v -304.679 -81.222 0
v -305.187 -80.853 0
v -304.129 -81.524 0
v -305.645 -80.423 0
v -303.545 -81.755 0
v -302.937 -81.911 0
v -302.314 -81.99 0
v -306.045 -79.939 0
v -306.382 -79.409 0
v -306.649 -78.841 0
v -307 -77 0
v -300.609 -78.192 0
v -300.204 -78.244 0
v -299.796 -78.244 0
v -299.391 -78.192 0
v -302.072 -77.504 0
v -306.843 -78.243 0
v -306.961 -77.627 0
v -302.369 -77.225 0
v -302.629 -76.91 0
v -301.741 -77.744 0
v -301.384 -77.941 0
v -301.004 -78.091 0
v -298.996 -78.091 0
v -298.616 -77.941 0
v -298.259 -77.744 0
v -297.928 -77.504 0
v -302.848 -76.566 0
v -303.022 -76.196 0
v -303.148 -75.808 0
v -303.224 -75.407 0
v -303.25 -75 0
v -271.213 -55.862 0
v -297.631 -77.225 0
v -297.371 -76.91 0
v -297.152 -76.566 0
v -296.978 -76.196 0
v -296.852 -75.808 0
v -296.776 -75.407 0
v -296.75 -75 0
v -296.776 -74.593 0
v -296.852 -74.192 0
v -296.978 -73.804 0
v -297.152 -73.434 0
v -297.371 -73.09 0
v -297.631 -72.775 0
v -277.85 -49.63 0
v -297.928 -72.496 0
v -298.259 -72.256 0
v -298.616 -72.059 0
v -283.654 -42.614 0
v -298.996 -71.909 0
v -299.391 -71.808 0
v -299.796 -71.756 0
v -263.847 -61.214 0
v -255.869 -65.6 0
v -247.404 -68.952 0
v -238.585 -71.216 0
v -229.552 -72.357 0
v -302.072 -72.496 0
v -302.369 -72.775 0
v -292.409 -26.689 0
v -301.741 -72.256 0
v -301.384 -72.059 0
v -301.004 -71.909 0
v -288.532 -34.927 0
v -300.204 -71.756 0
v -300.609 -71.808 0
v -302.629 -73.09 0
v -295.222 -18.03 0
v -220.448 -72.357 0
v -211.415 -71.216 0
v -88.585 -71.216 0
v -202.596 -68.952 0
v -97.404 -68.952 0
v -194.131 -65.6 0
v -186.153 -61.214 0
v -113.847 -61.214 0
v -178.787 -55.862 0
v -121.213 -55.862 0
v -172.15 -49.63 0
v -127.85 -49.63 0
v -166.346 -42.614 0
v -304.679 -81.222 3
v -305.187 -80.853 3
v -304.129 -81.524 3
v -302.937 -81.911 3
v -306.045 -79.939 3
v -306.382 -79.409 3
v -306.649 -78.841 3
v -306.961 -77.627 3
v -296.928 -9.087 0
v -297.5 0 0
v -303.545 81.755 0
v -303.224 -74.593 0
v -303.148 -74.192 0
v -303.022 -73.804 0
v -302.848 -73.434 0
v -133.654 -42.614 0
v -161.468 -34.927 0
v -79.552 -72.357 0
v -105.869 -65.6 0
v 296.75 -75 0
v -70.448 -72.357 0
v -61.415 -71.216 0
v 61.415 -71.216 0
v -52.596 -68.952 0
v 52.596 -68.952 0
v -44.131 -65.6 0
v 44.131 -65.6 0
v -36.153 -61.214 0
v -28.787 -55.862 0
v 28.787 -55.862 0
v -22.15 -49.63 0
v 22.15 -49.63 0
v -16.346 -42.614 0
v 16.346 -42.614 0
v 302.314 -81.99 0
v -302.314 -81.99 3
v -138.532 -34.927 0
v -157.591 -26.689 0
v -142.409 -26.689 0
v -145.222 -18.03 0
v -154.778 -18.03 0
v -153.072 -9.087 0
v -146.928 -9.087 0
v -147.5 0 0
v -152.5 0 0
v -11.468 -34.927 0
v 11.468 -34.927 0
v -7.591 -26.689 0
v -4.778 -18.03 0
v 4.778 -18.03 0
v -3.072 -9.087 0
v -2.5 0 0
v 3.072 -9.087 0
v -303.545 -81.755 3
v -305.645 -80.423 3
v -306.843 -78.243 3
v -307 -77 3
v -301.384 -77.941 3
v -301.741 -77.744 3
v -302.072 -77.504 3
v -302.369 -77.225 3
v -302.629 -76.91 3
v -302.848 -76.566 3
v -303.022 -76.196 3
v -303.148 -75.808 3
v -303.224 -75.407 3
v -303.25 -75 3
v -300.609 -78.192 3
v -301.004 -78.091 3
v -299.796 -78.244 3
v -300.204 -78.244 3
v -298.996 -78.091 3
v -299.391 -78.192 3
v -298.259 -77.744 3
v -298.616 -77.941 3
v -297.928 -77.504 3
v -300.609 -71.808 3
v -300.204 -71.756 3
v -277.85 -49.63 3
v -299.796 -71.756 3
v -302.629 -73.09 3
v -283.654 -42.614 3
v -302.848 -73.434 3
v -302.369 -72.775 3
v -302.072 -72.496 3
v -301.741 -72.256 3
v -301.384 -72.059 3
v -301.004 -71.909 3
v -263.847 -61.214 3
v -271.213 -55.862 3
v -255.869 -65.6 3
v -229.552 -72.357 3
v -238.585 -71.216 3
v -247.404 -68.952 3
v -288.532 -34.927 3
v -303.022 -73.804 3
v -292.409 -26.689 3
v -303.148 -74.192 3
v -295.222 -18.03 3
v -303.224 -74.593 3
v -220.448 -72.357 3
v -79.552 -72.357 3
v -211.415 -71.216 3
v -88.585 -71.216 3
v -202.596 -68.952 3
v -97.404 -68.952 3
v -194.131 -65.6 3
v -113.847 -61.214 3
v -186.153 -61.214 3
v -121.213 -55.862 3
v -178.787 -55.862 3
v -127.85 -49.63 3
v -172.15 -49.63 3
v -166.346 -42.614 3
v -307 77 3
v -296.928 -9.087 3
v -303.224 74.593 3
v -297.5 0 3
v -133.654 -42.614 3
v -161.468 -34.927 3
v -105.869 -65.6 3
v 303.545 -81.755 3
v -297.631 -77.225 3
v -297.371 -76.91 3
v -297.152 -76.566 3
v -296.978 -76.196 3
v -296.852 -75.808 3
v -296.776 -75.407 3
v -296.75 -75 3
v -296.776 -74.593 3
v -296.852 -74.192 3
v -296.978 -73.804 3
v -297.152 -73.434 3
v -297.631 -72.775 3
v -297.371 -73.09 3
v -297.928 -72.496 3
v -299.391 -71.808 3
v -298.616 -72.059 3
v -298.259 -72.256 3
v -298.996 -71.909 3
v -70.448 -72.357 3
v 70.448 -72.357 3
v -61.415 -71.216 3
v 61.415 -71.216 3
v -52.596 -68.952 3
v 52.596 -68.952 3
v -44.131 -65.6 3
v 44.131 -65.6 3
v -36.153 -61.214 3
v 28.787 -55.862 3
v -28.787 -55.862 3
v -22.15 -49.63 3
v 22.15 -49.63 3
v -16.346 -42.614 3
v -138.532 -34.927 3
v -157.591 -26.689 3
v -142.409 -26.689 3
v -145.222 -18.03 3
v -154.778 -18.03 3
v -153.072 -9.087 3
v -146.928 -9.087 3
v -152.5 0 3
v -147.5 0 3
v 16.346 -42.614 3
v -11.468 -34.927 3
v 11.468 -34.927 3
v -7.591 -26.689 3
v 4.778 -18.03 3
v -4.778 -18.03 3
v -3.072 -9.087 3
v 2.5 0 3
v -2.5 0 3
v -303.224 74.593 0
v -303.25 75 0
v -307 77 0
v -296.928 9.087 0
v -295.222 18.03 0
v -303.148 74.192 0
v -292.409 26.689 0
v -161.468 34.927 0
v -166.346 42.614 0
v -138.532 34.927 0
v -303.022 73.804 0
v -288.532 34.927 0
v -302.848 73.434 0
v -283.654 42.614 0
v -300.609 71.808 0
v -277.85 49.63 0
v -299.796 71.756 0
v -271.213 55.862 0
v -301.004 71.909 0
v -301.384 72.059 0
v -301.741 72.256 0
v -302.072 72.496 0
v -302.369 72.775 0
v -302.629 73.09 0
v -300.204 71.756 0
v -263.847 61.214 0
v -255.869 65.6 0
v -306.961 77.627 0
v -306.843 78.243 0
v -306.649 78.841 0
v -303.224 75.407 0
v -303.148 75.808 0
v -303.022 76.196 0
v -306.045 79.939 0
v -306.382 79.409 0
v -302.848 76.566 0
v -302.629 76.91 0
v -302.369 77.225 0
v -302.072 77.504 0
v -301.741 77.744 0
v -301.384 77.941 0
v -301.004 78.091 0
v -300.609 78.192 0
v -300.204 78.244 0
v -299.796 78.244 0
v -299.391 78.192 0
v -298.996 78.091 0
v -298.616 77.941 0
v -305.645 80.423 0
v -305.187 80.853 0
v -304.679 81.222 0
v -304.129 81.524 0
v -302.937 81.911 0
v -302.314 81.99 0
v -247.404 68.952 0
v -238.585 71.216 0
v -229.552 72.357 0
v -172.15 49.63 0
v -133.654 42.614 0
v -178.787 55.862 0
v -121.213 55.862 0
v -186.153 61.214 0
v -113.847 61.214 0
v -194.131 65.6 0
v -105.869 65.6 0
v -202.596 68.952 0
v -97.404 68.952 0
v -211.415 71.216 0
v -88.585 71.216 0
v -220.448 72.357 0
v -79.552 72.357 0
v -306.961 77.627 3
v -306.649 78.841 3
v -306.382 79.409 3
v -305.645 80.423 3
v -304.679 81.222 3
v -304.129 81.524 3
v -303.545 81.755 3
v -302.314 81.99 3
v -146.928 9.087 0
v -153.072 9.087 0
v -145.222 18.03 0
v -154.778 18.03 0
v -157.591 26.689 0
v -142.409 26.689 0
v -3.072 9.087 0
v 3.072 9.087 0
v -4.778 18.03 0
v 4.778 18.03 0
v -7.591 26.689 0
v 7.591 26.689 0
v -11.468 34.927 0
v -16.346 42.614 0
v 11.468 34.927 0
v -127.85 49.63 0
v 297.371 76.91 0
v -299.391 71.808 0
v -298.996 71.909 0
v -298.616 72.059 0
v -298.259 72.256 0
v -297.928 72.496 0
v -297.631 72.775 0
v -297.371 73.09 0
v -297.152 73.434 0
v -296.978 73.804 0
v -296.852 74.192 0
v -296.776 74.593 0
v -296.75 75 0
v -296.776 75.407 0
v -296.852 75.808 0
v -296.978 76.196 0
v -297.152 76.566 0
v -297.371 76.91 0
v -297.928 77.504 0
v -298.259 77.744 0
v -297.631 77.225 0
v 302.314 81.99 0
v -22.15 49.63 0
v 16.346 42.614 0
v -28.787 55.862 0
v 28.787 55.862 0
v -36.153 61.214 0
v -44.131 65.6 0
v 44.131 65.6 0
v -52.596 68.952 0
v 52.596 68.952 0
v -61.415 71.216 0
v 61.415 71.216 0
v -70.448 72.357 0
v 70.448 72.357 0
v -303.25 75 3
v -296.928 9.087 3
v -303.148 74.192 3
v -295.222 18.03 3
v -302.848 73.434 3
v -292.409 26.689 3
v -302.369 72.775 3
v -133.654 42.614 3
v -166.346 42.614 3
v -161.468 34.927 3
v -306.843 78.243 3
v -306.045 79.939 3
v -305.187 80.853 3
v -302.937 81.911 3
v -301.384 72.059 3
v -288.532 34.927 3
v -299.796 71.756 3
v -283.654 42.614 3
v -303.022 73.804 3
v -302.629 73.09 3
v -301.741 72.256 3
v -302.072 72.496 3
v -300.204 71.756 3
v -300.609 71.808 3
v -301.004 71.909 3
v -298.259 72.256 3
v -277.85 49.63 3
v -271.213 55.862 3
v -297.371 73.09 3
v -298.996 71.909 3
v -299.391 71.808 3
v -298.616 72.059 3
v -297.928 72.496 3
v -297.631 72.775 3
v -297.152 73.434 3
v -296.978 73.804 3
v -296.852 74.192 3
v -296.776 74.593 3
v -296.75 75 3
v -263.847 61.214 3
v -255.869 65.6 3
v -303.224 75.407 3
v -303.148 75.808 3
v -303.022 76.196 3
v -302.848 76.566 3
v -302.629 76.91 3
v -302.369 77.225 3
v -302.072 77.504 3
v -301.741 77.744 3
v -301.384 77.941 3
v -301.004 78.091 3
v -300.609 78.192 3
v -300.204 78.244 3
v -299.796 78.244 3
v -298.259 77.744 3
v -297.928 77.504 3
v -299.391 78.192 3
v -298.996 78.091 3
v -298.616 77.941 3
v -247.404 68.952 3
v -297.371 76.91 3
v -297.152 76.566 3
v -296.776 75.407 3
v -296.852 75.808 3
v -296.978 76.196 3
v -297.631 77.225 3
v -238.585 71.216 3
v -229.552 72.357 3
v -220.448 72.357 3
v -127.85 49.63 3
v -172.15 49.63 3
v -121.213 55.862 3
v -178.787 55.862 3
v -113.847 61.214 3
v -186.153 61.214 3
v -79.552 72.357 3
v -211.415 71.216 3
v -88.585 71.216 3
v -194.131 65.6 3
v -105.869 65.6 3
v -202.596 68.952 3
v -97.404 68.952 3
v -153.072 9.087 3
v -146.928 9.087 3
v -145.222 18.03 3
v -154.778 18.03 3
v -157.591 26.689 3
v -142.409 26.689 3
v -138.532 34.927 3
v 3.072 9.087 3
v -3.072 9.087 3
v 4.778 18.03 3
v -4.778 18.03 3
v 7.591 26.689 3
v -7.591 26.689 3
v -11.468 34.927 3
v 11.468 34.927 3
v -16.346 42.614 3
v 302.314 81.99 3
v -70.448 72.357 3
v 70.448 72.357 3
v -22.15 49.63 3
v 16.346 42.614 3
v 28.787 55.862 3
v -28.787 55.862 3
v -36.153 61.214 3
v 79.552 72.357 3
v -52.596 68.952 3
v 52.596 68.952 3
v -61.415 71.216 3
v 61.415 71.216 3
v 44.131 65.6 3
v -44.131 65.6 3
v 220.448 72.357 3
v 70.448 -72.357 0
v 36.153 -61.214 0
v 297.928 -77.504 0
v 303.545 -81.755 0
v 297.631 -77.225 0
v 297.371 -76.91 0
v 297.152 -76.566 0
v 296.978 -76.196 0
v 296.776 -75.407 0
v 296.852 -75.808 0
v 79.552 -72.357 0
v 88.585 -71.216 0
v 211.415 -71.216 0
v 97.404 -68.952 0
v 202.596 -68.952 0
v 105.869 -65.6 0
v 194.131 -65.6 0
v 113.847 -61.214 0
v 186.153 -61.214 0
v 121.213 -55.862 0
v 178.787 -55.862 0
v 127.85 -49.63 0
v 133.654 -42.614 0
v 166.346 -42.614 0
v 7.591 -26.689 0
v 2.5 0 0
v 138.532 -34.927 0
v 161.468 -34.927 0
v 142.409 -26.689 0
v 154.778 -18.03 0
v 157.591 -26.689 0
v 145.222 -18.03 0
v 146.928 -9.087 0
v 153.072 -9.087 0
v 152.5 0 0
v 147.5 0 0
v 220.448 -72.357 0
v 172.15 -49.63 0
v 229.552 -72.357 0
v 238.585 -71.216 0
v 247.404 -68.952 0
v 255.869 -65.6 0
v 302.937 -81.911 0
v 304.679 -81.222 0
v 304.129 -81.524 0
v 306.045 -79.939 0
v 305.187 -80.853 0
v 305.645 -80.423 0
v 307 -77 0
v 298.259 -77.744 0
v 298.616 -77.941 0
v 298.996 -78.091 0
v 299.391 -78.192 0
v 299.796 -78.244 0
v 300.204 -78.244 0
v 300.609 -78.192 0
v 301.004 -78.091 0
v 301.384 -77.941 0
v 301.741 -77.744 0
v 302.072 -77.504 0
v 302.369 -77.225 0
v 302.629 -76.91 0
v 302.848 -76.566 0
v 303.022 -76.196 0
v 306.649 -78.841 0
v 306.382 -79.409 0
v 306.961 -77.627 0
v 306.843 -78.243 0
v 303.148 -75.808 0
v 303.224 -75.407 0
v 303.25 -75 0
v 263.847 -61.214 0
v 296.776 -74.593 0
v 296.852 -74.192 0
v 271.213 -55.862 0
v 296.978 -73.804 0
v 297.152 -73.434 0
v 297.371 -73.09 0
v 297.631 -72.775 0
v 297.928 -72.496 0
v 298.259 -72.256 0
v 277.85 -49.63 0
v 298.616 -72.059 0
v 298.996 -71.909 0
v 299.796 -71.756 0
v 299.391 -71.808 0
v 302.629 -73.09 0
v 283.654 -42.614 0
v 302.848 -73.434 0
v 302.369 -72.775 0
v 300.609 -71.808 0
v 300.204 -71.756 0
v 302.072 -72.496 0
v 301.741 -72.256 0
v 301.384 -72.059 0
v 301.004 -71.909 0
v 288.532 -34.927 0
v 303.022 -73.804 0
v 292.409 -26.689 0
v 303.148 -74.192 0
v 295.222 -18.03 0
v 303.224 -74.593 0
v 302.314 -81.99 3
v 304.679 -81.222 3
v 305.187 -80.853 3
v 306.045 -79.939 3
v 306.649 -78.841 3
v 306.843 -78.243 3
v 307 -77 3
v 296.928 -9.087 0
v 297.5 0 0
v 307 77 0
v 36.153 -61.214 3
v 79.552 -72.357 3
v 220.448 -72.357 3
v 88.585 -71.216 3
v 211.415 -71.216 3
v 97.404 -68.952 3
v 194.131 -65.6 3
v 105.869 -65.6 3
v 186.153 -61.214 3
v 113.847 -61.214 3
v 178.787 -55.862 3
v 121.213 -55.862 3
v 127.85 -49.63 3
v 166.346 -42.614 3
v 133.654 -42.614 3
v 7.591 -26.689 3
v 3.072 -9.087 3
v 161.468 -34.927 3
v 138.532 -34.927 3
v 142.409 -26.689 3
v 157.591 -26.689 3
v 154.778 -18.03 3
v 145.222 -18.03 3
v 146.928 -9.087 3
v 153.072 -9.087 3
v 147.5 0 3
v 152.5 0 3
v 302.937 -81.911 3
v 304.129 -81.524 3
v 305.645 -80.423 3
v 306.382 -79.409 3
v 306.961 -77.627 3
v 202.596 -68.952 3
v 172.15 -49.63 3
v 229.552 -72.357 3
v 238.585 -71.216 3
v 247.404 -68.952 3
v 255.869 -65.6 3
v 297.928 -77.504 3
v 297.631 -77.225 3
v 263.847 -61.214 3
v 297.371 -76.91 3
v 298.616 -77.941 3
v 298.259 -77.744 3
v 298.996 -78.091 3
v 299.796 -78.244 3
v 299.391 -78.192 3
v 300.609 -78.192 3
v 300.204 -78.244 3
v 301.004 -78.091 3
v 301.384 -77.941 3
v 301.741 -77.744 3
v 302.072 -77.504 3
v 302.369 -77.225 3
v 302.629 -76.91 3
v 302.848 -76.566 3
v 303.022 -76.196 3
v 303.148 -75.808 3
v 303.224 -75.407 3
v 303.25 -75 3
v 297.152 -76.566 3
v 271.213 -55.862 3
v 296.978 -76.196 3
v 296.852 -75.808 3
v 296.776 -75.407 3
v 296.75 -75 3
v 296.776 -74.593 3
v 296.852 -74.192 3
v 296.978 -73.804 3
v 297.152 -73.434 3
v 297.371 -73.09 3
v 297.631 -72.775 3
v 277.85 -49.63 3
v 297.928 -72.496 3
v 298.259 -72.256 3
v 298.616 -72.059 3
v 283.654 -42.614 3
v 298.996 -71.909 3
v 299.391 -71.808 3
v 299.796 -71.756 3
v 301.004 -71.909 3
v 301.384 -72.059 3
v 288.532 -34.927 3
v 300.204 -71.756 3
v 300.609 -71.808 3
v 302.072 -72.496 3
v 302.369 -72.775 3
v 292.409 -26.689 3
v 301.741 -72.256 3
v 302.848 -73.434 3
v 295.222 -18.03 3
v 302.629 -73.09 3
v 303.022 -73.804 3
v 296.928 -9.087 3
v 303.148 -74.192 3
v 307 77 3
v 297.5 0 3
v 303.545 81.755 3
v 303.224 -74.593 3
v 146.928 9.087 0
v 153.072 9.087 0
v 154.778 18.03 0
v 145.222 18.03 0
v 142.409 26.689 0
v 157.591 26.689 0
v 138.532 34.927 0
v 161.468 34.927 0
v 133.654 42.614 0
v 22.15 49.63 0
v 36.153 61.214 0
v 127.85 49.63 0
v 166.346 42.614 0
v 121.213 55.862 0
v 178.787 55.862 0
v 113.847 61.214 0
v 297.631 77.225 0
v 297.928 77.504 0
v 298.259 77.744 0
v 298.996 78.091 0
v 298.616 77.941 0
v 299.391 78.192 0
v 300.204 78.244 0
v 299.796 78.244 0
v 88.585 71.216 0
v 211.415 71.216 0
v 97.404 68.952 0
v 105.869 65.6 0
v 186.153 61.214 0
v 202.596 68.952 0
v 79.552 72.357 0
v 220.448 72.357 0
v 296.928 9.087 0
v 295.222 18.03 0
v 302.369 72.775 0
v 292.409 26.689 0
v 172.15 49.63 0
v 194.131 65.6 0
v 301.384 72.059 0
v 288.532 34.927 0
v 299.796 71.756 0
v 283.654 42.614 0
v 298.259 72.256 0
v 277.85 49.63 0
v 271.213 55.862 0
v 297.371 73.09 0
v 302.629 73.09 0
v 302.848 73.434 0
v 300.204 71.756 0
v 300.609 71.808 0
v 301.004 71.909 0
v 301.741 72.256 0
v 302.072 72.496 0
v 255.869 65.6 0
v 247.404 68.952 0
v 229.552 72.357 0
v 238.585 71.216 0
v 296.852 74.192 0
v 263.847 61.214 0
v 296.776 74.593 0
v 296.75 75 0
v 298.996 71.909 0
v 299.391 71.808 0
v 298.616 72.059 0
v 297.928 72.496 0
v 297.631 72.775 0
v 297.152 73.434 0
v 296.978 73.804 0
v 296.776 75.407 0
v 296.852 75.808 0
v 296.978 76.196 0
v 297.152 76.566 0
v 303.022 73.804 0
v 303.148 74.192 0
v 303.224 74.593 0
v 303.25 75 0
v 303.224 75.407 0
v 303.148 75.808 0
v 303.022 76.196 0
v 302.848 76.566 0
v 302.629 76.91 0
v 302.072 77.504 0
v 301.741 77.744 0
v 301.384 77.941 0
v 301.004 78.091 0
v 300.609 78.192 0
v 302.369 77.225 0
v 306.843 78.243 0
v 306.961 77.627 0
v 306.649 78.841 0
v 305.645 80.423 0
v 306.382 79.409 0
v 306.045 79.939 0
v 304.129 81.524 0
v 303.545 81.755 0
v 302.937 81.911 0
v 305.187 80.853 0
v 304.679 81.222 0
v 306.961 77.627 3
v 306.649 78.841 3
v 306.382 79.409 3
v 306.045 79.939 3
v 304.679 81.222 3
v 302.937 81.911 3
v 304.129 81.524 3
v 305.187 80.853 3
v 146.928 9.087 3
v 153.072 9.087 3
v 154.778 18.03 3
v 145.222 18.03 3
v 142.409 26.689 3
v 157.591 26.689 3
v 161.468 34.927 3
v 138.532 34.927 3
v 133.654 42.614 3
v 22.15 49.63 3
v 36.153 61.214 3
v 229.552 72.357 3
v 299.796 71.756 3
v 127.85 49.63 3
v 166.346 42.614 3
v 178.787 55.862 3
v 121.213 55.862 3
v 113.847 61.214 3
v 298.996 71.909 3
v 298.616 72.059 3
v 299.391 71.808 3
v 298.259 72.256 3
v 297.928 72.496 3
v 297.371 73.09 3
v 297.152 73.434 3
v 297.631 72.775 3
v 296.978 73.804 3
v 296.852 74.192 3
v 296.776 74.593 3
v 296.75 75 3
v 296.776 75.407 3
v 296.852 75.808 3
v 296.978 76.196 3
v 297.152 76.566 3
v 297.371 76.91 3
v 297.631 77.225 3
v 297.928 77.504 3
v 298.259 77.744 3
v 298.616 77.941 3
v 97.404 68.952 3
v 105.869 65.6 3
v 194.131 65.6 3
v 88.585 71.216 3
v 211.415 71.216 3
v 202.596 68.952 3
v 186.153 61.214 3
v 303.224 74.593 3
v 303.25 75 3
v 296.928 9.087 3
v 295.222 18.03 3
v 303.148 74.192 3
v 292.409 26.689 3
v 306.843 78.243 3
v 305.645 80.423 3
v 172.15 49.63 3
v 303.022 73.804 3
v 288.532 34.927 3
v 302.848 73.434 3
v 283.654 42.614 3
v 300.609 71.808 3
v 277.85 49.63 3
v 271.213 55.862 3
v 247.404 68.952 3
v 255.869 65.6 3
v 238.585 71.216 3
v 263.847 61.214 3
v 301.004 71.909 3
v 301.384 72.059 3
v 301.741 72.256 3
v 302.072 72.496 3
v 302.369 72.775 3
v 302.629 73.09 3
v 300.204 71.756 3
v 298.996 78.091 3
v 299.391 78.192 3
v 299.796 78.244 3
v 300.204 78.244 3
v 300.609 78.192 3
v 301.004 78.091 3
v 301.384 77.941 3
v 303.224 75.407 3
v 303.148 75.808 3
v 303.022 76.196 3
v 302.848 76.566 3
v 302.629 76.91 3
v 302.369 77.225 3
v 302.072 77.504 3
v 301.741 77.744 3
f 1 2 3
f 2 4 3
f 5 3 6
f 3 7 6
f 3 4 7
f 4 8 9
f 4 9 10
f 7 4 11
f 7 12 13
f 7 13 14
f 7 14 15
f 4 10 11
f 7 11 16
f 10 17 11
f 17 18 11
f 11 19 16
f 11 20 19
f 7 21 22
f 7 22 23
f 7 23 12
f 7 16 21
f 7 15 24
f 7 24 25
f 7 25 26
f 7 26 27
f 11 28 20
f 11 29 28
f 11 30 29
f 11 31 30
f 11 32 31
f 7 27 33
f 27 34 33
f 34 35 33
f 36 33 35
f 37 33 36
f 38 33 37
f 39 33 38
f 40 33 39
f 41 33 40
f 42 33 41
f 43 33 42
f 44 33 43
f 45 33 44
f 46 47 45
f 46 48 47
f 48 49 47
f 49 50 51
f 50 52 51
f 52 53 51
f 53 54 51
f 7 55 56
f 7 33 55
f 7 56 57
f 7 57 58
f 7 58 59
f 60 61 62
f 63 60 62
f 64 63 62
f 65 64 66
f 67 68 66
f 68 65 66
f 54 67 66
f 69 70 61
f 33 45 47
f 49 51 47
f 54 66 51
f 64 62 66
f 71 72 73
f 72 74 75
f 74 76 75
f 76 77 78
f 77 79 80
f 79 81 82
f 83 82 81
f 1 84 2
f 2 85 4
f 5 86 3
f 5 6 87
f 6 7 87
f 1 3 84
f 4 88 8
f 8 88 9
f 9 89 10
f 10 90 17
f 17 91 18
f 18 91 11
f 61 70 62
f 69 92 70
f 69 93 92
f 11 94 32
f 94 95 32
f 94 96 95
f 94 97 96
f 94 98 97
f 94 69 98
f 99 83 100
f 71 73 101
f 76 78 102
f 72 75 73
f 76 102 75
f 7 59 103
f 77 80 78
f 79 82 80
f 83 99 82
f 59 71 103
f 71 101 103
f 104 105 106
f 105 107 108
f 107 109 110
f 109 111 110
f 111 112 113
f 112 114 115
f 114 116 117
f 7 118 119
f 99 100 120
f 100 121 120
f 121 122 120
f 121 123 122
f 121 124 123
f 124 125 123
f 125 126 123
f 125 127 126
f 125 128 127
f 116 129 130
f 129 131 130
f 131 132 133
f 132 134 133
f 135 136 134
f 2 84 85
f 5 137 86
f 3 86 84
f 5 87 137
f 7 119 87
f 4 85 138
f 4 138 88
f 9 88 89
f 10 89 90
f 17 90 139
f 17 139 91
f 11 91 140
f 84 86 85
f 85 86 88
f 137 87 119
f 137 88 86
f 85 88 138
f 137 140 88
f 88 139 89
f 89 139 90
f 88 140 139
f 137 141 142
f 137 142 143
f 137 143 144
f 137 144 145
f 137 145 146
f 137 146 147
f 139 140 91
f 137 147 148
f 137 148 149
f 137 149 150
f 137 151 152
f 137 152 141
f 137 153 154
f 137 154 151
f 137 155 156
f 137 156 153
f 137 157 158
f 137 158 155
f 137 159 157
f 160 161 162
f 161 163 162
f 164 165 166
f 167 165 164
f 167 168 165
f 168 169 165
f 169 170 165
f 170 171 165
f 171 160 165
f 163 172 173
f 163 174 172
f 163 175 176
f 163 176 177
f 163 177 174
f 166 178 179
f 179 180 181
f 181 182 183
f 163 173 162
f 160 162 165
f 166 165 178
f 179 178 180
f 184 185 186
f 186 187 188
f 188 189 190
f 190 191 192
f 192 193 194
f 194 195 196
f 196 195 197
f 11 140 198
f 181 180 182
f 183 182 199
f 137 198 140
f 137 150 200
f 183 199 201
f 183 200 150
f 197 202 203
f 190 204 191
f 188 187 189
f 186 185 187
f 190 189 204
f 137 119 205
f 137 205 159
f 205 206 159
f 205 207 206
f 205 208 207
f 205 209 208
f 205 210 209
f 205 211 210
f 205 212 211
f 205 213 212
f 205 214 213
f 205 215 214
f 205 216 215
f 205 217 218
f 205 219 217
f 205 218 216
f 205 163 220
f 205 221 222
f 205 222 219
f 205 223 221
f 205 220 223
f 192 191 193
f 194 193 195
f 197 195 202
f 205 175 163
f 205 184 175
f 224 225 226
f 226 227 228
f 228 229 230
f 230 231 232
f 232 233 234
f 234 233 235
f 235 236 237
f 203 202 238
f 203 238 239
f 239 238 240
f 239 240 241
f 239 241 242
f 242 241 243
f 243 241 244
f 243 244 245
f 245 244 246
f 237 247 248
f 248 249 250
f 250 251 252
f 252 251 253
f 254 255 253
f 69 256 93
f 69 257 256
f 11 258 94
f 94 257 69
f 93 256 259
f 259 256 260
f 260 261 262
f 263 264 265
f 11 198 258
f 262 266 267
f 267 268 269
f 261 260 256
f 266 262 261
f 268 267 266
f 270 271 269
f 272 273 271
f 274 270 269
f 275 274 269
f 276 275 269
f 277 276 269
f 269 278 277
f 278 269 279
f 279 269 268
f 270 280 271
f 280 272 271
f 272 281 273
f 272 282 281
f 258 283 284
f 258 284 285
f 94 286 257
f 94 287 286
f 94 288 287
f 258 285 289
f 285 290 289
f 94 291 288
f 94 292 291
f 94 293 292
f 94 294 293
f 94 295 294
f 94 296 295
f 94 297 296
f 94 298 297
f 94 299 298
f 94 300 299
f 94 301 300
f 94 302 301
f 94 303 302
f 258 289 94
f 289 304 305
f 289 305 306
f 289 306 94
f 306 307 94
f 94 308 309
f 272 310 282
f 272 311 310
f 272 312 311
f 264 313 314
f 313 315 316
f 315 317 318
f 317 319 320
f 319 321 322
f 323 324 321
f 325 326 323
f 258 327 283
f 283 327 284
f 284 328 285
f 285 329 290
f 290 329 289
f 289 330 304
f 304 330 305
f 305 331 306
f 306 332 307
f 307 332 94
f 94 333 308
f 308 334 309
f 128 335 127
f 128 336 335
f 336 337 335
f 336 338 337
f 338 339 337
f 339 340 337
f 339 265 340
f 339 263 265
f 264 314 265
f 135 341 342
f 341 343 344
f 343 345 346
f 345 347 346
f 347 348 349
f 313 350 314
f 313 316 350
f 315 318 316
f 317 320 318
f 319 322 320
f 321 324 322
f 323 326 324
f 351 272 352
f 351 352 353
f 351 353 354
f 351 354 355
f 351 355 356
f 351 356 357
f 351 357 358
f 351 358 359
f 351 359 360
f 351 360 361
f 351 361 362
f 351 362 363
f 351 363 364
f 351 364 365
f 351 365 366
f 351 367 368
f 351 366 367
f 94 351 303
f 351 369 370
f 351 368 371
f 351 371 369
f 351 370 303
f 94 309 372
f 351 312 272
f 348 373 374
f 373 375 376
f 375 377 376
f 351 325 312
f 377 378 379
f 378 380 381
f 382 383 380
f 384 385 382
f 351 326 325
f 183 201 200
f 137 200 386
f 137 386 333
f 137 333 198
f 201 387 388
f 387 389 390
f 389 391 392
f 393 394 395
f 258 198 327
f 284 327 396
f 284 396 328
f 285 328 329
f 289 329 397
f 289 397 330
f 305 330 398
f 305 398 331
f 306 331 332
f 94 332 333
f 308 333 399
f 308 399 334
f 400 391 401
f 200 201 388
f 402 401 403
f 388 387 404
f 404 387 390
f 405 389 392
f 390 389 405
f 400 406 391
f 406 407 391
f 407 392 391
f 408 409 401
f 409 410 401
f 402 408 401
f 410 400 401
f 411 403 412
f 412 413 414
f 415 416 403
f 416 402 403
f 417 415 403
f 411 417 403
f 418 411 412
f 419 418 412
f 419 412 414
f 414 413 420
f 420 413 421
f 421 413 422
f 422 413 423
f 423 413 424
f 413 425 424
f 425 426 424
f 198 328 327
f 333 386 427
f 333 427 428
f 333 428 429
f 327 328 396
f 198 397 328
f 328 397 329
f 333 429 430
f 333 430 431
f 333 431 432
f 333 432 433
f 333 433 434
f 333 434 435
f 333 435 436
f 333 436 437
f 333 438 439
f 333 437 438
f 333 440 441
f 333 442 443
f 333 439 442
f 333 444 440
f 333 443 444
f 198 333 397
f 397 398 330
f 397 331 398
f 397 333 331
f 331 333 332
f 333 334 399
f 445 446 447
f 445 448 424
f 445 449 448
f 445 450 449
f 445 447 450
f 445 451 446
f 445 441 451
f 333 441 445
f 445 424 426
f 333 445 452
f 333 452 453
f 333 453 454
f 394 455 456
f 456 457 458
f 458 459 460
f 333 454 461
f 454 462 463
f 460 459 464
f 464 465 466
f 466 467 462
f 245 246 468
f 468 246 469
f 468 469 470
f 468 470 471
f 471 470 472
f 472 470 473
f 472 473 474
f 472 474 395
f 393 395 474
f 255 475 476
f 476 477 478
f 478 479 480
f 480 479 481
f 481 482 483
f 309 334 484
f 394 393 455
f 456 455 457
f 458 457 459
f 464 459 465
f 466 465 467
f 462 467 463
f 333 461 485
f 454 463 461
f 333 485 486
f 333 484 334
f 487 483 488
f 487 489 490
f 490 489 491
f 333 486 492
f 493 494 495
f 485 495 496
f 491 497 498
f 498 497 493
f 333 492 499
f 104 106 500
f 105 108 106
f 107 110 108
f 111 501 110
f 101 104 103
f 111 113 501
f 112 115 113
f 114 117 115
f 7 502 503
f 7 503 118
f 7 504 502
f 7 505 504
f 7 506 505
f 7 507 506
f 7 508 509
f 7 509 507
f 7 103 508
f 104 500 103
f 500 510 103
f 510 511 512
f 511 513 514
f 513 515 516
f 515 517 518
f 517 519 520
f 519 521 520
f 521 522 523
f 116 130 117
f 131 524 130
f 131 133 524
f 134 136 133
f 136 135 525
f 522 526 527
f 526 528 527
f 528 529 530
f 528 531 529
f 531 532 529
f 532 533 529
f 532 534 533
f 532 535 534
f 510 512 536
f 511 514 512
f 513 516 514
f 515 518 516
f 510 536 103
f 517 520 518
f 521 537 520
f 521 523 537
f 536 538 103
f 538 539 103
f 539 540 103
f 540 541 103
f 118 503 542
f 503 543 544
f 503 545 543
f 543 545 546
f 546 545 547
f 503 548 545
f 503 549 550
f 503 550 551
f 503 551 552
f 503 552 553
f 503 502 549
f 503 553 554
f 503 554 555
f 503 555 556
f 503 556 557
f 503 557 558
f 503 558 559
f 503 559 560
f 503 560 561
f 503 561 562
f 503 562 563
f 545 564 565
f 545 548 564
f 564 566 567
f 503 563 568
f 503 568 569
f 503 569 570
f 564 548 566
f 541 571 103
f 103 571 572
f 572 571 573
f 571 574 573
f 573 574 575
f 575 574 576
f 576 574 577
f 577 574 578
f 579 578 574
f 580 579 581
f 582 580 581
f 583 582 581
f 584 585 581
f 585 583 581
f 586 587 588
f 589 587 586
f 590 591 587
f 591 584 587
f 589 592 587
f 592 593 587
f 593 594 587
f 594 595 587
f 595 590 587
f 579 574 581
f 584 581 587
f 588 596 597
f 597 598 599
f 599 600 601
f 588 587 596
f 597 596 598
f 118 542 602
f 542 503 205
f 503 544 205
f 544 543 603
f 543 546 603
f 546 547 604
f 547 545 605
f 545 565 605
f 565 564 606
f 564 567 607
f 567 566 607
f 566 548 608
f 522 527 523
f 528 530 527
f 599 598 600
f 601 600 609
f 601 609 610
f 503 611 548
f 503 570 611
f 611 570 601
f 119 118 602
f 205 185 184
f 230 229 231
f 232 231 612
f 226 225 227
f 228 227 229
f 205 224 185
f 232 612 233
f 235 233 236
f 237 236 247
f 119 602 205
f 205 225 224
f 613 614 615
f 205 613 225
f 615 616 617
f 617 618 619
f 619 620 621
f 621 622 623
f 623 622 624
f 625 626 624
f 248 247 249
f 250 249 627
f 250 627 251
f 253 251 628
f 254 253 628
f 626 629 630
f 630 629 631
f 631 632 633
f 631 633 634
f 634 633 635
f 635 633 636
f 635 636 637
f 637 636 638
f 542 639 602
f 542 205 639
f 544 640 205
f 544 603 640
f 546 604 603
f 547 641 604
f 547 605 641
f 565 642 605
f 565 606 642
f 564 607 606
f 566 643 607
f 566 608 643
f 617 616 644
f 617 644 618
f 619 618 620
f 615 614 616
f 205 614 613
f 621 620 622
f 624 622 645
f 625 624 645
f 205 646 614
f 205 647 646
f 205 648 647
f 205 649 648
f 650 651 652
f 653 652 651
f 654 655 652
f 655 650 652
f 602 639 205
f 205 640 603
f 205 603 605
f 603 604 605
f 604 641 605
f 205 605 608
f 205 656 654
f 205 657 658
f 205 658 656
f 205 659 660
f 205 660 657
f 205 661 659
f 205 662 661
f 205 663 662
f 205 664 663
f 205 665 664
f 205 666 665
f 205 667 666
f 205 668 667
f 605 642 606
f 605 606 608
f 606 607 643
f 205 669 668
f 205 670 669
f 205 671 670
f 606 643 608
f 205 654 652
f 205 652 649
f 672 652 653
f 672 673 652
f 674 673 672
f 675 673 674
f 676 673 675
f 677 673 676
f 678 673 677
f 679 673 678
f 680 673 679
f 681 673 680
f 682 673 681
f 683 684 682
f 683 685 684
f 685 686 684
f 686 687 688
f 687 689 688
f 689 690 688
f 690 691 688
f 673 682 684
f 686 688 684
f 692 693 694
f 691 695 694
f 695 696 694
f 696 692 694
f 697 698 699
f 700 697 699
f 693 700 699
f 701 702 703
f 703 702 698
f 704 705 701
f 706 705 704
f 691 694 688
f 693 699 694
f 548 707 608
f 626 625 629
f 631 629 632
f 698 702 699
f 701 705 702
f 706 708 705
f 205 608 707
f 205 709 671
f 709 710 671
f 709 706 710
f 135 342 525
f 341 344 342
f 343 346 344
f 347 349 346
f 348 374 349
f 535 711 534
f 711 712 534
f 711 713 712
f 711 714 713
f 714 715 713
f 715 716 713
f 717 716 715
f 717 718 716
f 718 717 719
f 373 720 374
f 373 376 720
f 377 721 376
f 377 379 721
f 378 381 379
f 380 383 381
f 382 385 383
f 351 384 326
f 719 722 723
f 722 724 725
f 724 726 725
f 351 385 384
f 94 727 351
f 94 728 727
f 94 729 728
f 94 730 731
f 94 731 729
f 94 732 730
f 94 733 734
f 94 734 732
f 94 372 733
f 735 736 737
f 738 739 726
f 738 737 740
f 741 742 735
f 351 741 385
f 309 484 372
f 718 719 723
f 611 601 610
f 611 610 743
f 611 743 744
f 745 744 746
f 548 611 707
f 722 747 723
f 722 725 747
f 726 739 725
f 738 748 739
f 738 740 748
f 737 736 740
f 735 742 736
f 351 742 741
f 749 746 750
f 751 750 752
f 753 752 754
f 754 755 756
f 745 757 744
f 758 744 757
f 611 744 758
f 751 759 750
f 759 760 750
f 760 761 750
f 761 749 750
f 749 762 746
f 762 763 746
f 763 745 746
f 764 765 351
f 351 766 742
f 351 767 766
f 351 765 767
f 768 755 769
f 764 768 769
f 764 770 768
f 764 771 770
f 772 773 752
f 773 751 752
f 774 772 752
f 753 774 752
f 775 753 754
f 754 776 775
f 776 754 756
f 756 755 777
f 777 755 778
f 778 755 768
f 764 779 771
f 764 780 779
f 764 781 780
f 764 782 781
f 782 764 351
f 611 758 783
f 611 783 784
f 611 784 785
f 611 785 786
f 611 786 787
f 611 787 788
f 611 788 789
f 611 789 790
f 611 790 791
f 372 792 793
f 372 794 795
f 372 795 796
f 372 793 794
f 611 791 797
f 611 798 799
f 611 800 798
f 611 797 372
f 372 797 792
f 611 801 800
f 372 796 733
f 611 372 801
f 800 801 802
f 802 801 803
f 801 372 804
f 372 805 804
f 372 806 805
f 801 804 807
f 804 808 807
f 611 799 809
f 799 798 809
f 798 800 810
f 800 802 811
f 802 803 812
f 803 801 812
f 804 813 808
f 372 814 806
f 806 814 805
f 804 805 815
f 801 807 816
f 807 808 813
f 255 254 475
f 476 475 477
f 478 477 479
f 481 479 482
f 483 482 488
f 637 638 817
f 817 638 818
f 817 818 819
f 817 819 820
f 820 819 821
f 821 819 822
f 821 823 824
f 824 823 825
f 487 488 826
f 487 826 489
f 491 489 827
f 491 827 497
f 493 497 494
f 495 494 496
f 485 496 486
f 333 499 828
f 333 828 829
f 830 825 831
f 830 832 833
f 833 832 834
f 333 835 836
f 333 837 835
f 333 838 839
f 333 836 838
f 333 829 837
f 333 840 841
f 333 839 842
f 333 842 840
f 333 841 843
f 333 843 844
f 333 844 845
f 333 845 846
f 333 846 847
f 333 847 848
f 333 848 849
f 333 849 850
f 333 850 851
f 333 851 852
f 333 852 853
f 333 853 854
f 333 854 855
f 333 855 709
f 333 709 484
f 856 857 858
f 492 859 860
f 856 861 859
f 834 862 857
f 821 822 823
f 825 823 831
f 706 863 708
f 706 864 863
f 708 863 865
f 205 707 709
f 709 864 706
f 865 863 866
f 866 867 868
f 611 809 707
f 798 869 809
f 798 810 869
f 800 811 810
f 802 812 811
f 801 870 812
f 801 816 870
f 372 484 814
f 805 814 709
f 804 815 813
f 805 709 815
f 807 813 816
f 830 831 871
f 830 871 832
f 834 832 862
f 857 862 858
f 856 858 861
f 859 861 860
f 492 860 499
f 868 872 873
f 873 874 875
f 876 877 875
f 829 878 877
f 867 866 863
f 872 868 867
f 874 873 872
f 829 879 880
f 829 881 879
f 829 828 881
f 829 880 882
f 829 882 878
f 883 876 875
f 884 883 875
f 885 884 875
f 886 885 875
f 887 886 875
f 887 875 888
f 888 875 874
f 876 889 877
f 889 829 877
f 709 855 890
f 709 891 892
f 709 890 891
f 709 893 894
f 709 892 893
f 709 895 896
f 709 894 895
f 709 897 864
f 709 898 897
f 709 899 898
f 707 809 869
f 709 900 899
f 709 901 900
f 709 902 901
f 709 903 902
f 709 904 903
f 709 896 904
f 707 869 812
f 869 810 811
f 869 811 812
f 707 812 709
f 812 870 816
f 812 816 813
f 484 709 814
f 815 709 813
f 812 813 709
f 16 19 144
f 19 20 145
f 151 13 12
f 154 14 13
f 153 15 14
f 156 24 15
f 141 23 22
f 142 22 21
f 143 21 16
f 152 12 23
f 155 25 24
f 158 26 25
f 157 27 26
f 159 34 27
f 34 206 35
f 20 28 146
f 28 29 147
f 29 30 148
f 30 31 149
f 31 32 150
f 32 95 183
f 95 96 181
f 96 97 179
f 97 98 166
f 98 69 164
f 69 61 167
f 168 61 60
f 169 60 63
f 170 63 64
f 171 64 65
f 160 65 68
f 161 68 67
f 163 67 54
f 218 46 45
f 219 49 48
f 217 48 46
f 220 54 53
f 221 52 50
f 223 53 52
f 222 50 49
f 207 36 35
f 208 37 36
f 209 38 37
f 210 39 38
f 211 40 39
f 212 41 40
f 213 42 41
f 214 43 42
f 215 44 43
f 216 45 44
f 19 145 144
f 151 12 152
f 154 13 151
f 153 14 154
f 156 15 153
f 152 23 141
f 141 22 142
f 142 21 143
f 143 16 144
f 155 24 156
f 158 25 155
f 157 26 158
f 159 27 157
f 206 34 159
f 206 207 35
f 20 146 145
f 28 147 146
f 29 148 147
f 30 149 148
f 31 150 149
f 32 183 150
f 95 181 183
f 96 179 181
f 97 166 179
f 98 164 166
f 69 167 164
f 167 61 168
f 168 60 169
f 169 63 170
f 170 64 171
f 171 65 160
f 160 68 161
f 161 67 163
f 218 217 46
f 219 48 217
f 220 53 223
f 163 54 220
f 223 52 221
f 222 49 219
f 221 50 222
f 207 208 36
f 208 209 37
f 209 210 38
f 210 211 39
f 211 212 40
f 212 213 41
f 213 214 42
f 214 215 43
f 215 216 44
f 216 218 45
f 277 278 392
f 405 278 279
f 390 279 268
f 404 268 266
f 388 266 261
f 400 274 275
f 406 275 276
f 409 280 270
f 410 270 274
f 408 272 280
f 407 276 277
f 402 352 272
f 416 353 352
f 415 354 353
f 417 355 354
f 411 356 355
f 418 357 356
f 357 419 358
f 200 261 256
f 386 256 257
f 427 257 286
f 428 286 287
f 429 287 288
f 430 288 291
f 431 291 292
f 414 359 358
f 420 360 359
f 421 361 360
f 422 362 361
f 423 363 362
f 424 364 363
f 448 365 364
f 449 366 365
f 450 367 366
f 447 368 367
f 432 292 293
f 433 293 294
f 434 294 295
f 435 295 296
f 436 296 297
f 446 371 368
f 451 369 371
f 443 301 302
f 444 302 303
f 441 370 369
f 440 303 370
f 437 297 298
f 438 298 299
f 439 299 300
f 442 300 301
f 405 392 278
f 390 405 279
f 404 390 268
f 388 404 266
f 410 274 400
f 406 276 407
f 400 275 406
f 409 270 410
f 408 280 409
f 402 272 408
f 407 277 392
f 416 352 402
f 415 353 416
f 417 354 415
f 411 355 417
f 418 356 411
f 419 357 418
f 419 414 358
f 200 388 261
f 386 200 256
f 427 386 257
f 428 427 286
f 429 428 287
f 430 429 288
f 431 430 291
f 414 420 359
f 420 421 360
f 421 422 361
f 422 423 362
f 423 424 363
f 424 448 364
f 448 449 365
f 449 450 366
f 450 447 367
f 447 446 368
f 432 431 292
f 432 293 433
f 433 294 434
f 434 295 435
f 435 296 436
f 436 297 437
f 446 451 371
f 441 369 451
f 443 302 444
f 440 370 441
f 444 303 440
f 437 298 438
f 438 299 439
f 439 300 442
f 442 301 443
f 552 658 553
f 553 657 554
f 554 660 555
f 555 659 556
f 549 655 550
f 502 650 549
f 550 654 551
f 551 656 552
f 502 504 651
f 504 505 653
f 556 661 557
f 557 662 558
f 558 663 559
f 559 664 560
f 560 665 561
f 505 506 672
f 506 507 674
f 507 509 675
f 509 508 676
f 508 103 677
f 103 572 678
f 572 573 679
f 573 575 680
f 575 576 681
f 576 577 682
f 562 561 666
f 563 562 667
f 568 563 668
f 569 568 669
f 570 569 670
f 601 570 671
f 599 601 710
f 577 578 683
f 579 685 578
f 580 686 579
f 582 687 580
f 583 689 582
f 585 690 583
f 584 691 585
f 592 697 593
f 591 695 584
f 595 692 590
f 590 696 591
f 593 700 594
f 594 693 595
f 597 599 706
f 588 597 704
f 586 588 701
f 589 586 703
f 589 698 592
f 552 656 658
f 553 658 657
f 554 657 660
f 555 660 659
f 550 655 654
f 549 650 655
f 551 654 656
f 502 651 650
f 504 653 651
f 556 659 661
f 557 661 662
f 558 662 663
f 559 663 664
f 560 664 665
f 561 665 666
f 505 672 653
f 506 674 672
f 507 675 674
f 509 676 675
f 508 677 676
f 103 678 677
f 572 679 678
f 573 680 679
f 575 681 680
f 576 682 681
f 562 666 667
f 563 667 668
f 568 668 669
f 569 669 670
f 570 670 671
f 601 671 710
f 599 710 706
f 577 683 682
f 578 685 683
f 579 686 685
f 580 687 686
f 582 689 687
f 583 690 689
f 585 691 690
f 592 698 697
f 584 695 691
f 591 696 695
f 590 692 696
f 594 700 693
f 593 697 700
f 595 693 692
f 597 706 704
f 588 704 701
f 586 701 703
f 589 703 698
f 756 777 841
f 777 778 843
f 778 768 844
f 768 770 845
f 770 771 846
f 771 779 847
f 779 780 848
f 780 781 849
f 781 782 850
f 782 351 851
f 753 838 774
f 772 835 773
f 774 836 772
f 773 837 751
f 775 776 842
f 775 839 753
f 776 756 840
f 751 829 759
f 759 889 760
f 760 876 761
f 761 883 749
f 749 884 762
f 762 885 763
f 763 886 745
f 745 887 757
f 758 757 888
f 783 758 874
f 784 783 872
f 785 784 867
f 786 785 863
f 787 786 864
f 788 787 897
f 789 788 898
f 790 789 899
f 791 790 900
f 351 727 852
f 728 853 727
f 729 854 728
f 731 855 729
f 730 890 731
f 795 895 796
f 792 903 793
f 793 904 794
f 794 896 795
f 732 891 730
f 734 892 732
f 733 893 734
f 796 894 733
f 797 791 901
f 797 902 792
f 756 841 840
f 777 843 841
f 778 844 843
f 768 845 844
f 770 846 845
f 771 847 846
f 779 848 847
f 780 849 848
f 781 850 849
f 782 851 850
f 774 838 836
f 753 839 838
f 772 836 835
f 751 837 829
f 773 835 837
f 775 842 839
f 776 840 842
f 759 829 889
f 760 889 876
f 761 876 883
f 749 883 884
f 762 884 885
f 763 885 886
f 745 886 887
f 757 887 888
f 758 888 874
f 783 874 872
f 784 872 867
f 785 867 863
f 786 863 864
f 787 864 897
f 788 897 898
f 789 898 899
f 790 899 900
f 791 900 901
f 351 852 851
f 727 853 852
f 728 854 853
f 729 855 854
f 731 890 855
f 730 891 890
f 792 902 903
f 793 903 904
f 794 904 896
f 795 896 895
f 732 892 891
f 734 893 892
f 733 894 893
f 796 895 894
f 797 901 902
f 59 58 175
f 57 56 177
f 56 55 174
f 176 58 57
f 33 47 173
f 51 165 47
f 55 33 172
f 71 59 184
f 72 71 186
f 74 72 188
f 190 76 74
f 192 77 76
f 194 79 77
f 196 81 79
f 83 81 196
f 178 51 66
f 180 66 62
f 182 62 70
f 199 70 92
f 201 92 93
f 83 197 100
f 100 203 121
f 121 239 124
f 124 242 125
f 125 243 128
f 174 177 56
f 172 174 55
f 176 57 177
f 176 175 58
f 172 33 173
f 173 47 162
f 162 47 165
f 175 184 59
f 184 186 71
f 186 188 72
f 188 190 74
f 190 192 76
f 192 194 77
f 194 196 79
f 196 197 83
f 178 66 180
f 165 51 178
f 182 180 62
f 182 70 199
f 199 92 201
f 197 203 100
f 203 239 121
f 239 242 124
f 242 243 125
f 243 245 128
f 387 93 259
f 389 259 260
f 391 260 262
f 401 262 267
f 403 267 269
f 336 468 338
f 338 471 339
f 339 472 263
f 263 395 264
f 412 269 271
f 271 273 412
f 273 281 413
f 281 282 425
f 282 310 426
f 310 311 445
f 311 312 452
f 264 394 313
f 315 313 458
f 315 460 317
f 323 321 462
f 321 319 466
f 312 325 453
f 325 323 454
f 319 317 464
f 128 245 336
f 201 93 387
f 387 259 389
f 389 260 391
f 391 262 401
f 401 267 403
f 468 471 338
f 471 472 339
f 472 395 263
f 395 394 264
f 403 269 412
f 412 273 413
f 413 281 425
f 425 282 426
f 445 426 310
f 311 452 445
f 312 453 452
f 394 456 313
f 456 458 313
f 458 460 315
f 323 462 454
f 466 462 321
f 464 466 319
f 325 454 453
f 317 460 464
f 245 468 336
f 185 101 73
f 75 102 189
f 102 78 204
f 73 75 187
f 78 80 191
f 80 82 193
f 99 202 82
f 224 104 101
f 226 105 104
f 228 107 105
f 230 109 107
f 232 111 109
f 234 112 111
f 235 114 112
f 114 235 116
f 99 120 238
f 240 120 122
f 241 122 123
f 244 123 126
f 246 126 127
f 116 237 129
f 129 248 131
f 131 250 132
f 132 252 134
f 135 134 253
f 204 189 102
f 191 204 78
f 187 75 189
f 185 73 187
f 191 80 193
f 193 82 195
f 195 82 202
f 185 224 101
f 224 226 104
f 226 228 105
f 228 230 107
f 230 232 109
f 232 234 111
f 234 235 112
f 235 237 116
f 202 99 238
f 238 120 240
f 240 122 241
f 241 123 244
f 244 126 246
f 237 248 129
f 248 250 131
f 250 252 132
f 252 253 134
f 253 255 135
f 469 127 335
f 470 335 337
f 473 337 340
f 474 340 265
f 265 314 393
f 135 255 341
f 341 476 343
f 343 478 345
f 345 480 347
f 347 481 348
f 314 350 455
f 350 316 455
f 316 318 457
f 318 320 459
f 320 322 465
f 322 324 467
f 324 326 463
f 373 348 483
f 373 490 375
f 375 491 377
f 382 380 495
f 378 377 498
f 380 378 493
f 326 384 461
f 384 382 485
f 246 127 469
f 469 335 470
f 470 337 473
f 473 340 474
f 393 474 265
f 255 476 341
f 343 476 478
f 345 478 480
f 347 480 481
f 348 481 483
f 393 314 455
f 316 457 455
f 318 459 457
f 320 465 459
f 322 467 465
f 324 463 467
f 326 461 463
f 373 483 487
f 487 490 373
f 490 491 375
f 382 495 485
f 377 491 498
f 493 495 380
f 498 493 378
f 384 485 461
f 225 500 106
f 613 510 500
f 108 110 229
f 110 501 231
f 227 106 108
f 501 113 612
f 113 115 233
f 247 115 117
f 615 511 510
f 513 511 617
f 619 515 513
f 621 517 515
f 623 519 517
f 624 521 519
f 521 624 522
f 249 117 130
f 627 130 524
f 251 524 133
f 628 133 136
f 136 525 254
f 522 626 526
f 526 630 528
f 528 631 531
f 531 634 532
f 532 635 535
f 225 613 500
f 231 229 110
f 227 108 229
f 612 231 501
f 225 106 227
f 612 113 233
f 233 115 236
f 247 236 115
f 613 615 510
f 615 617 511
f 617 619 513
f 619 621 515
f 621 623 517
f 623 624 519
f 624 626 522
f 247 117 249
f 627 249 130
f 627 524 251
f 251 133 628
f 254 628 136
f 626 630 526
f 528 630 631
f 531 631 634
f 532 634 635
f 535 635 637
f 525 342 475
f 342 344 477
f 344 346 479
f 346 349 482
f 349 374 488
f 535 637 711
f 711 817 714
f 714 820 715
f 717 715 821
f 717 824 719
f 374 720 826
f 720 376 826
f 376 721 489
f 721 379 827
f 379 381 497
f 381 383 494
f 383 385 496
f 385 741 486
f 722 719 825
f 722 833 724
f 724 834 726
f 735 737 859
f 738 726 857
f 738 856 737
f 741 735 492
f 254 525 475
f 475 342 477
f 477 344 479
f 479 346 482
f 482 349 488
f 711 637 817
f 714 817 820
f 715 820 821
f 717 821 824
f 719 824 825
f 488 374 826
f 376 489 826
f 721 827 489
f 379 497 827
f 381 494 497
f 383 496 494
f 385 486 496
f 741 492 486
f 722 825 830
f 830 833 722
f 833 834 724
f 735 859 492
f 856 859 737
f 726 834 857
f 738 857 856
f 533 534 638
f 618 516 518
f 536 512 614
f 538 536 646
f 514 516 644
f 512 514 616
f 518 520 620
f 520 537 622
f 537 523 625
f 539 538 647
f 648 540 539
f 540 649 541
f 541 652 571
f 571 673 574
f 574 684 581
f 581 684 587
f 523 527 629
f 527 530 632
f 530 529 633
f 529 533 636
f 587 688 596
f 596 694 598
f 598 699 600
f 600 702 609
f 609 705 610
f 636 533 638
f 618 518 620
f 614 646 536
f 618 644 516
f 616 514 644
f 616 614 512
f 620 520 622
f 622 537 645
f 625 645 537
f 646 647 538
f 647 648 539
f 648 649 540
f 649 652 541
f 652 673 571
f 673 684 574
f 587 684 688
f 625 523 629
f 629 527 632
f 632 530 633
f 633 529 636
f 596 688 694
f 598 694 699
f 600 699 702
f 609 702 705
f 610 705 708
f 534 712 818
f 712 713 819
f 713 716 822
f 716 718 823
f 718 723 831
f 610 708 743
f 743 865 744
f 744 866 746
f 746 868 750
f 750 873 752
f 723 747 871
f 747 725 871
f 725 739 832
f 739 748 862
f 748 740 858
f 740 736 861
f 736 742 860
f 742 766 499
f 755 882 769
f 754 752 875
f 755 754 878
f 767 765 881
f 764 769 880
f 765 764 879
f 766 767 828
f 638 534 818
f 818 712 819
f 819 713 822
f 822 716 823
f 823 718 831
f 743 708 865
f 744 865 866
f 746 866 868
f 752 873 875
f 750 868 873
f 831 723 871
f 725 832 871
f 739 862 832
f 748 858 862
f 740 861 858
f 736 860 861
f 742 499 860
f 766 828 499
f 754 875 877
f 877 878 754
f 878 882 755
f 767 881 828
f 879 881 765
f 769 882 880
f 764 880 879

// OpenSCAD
$fn = 50;

difference() {
	union() {
		hull() {
			translate(v = [-302.0, 77.0, 0]) {
				cylinder(h = 3, r = 5);
			}
			translate(v = [302.0, 77.0, 0]) {
				cylinder(h = 3, r = 5);
			}
			translate(v = [-302.0, -77.0, 0]) {
				cylinder(h = 3, r = 5);
			}
			translate(v = [302.0, -77.0, 0]) {
				cylinder(h = 3, r = 5);
			}
		}
	}
	union() {
		translate(v = [-300.0, -75.0, -100.0]) {
			cylinder(h = 200, r = 3.25);
		}
		translate(v = [-300.0, 75.0, -100.0]) {
			cylinder(h = 200, r = 3.25);
		}
		translate(v = [300.0, -75.0, -100.0]) {
			cylinder(h = 200, r = 3.25);
		}
		translate(v = [300.0, 75.0, -100.0]) {
			cylinder(h = 200, r = 3.25);
		}
		translate(v = [-300.0, -75.0, -100.0]) {
			cylinder(h = 200, r = 1.8);
		}
		translate(v = [-300.0, 75.0, -100.0]) {
			cylinder(h = 200, r = 1.8);
		}
		translate(v = [300.0, -75.0, -100.0]) {
			cylinder(h = 200, r = 1.8);
		}
		translate(v = [300.0, 75.0, -100.0]) {
			cylinder(h = 200, r = 1.8);
		}
		translate(v = [-225.0, 0, 0.0]) {
			cylinder(h = 3, r = 72.5);
		}
		translate(v = [-75.0, 0, 0.0]) {
			cylinder(h = 3, r = 72.5);
		}
		translate(v = [75.0, 0, 0.0]) {
			cylinder(h = 3, r = 72.5);
		}
		translate(v = [225.0, 0, 0.0]) {
			cylinder(h = 3, r = 72.5);
		}
	}
}
